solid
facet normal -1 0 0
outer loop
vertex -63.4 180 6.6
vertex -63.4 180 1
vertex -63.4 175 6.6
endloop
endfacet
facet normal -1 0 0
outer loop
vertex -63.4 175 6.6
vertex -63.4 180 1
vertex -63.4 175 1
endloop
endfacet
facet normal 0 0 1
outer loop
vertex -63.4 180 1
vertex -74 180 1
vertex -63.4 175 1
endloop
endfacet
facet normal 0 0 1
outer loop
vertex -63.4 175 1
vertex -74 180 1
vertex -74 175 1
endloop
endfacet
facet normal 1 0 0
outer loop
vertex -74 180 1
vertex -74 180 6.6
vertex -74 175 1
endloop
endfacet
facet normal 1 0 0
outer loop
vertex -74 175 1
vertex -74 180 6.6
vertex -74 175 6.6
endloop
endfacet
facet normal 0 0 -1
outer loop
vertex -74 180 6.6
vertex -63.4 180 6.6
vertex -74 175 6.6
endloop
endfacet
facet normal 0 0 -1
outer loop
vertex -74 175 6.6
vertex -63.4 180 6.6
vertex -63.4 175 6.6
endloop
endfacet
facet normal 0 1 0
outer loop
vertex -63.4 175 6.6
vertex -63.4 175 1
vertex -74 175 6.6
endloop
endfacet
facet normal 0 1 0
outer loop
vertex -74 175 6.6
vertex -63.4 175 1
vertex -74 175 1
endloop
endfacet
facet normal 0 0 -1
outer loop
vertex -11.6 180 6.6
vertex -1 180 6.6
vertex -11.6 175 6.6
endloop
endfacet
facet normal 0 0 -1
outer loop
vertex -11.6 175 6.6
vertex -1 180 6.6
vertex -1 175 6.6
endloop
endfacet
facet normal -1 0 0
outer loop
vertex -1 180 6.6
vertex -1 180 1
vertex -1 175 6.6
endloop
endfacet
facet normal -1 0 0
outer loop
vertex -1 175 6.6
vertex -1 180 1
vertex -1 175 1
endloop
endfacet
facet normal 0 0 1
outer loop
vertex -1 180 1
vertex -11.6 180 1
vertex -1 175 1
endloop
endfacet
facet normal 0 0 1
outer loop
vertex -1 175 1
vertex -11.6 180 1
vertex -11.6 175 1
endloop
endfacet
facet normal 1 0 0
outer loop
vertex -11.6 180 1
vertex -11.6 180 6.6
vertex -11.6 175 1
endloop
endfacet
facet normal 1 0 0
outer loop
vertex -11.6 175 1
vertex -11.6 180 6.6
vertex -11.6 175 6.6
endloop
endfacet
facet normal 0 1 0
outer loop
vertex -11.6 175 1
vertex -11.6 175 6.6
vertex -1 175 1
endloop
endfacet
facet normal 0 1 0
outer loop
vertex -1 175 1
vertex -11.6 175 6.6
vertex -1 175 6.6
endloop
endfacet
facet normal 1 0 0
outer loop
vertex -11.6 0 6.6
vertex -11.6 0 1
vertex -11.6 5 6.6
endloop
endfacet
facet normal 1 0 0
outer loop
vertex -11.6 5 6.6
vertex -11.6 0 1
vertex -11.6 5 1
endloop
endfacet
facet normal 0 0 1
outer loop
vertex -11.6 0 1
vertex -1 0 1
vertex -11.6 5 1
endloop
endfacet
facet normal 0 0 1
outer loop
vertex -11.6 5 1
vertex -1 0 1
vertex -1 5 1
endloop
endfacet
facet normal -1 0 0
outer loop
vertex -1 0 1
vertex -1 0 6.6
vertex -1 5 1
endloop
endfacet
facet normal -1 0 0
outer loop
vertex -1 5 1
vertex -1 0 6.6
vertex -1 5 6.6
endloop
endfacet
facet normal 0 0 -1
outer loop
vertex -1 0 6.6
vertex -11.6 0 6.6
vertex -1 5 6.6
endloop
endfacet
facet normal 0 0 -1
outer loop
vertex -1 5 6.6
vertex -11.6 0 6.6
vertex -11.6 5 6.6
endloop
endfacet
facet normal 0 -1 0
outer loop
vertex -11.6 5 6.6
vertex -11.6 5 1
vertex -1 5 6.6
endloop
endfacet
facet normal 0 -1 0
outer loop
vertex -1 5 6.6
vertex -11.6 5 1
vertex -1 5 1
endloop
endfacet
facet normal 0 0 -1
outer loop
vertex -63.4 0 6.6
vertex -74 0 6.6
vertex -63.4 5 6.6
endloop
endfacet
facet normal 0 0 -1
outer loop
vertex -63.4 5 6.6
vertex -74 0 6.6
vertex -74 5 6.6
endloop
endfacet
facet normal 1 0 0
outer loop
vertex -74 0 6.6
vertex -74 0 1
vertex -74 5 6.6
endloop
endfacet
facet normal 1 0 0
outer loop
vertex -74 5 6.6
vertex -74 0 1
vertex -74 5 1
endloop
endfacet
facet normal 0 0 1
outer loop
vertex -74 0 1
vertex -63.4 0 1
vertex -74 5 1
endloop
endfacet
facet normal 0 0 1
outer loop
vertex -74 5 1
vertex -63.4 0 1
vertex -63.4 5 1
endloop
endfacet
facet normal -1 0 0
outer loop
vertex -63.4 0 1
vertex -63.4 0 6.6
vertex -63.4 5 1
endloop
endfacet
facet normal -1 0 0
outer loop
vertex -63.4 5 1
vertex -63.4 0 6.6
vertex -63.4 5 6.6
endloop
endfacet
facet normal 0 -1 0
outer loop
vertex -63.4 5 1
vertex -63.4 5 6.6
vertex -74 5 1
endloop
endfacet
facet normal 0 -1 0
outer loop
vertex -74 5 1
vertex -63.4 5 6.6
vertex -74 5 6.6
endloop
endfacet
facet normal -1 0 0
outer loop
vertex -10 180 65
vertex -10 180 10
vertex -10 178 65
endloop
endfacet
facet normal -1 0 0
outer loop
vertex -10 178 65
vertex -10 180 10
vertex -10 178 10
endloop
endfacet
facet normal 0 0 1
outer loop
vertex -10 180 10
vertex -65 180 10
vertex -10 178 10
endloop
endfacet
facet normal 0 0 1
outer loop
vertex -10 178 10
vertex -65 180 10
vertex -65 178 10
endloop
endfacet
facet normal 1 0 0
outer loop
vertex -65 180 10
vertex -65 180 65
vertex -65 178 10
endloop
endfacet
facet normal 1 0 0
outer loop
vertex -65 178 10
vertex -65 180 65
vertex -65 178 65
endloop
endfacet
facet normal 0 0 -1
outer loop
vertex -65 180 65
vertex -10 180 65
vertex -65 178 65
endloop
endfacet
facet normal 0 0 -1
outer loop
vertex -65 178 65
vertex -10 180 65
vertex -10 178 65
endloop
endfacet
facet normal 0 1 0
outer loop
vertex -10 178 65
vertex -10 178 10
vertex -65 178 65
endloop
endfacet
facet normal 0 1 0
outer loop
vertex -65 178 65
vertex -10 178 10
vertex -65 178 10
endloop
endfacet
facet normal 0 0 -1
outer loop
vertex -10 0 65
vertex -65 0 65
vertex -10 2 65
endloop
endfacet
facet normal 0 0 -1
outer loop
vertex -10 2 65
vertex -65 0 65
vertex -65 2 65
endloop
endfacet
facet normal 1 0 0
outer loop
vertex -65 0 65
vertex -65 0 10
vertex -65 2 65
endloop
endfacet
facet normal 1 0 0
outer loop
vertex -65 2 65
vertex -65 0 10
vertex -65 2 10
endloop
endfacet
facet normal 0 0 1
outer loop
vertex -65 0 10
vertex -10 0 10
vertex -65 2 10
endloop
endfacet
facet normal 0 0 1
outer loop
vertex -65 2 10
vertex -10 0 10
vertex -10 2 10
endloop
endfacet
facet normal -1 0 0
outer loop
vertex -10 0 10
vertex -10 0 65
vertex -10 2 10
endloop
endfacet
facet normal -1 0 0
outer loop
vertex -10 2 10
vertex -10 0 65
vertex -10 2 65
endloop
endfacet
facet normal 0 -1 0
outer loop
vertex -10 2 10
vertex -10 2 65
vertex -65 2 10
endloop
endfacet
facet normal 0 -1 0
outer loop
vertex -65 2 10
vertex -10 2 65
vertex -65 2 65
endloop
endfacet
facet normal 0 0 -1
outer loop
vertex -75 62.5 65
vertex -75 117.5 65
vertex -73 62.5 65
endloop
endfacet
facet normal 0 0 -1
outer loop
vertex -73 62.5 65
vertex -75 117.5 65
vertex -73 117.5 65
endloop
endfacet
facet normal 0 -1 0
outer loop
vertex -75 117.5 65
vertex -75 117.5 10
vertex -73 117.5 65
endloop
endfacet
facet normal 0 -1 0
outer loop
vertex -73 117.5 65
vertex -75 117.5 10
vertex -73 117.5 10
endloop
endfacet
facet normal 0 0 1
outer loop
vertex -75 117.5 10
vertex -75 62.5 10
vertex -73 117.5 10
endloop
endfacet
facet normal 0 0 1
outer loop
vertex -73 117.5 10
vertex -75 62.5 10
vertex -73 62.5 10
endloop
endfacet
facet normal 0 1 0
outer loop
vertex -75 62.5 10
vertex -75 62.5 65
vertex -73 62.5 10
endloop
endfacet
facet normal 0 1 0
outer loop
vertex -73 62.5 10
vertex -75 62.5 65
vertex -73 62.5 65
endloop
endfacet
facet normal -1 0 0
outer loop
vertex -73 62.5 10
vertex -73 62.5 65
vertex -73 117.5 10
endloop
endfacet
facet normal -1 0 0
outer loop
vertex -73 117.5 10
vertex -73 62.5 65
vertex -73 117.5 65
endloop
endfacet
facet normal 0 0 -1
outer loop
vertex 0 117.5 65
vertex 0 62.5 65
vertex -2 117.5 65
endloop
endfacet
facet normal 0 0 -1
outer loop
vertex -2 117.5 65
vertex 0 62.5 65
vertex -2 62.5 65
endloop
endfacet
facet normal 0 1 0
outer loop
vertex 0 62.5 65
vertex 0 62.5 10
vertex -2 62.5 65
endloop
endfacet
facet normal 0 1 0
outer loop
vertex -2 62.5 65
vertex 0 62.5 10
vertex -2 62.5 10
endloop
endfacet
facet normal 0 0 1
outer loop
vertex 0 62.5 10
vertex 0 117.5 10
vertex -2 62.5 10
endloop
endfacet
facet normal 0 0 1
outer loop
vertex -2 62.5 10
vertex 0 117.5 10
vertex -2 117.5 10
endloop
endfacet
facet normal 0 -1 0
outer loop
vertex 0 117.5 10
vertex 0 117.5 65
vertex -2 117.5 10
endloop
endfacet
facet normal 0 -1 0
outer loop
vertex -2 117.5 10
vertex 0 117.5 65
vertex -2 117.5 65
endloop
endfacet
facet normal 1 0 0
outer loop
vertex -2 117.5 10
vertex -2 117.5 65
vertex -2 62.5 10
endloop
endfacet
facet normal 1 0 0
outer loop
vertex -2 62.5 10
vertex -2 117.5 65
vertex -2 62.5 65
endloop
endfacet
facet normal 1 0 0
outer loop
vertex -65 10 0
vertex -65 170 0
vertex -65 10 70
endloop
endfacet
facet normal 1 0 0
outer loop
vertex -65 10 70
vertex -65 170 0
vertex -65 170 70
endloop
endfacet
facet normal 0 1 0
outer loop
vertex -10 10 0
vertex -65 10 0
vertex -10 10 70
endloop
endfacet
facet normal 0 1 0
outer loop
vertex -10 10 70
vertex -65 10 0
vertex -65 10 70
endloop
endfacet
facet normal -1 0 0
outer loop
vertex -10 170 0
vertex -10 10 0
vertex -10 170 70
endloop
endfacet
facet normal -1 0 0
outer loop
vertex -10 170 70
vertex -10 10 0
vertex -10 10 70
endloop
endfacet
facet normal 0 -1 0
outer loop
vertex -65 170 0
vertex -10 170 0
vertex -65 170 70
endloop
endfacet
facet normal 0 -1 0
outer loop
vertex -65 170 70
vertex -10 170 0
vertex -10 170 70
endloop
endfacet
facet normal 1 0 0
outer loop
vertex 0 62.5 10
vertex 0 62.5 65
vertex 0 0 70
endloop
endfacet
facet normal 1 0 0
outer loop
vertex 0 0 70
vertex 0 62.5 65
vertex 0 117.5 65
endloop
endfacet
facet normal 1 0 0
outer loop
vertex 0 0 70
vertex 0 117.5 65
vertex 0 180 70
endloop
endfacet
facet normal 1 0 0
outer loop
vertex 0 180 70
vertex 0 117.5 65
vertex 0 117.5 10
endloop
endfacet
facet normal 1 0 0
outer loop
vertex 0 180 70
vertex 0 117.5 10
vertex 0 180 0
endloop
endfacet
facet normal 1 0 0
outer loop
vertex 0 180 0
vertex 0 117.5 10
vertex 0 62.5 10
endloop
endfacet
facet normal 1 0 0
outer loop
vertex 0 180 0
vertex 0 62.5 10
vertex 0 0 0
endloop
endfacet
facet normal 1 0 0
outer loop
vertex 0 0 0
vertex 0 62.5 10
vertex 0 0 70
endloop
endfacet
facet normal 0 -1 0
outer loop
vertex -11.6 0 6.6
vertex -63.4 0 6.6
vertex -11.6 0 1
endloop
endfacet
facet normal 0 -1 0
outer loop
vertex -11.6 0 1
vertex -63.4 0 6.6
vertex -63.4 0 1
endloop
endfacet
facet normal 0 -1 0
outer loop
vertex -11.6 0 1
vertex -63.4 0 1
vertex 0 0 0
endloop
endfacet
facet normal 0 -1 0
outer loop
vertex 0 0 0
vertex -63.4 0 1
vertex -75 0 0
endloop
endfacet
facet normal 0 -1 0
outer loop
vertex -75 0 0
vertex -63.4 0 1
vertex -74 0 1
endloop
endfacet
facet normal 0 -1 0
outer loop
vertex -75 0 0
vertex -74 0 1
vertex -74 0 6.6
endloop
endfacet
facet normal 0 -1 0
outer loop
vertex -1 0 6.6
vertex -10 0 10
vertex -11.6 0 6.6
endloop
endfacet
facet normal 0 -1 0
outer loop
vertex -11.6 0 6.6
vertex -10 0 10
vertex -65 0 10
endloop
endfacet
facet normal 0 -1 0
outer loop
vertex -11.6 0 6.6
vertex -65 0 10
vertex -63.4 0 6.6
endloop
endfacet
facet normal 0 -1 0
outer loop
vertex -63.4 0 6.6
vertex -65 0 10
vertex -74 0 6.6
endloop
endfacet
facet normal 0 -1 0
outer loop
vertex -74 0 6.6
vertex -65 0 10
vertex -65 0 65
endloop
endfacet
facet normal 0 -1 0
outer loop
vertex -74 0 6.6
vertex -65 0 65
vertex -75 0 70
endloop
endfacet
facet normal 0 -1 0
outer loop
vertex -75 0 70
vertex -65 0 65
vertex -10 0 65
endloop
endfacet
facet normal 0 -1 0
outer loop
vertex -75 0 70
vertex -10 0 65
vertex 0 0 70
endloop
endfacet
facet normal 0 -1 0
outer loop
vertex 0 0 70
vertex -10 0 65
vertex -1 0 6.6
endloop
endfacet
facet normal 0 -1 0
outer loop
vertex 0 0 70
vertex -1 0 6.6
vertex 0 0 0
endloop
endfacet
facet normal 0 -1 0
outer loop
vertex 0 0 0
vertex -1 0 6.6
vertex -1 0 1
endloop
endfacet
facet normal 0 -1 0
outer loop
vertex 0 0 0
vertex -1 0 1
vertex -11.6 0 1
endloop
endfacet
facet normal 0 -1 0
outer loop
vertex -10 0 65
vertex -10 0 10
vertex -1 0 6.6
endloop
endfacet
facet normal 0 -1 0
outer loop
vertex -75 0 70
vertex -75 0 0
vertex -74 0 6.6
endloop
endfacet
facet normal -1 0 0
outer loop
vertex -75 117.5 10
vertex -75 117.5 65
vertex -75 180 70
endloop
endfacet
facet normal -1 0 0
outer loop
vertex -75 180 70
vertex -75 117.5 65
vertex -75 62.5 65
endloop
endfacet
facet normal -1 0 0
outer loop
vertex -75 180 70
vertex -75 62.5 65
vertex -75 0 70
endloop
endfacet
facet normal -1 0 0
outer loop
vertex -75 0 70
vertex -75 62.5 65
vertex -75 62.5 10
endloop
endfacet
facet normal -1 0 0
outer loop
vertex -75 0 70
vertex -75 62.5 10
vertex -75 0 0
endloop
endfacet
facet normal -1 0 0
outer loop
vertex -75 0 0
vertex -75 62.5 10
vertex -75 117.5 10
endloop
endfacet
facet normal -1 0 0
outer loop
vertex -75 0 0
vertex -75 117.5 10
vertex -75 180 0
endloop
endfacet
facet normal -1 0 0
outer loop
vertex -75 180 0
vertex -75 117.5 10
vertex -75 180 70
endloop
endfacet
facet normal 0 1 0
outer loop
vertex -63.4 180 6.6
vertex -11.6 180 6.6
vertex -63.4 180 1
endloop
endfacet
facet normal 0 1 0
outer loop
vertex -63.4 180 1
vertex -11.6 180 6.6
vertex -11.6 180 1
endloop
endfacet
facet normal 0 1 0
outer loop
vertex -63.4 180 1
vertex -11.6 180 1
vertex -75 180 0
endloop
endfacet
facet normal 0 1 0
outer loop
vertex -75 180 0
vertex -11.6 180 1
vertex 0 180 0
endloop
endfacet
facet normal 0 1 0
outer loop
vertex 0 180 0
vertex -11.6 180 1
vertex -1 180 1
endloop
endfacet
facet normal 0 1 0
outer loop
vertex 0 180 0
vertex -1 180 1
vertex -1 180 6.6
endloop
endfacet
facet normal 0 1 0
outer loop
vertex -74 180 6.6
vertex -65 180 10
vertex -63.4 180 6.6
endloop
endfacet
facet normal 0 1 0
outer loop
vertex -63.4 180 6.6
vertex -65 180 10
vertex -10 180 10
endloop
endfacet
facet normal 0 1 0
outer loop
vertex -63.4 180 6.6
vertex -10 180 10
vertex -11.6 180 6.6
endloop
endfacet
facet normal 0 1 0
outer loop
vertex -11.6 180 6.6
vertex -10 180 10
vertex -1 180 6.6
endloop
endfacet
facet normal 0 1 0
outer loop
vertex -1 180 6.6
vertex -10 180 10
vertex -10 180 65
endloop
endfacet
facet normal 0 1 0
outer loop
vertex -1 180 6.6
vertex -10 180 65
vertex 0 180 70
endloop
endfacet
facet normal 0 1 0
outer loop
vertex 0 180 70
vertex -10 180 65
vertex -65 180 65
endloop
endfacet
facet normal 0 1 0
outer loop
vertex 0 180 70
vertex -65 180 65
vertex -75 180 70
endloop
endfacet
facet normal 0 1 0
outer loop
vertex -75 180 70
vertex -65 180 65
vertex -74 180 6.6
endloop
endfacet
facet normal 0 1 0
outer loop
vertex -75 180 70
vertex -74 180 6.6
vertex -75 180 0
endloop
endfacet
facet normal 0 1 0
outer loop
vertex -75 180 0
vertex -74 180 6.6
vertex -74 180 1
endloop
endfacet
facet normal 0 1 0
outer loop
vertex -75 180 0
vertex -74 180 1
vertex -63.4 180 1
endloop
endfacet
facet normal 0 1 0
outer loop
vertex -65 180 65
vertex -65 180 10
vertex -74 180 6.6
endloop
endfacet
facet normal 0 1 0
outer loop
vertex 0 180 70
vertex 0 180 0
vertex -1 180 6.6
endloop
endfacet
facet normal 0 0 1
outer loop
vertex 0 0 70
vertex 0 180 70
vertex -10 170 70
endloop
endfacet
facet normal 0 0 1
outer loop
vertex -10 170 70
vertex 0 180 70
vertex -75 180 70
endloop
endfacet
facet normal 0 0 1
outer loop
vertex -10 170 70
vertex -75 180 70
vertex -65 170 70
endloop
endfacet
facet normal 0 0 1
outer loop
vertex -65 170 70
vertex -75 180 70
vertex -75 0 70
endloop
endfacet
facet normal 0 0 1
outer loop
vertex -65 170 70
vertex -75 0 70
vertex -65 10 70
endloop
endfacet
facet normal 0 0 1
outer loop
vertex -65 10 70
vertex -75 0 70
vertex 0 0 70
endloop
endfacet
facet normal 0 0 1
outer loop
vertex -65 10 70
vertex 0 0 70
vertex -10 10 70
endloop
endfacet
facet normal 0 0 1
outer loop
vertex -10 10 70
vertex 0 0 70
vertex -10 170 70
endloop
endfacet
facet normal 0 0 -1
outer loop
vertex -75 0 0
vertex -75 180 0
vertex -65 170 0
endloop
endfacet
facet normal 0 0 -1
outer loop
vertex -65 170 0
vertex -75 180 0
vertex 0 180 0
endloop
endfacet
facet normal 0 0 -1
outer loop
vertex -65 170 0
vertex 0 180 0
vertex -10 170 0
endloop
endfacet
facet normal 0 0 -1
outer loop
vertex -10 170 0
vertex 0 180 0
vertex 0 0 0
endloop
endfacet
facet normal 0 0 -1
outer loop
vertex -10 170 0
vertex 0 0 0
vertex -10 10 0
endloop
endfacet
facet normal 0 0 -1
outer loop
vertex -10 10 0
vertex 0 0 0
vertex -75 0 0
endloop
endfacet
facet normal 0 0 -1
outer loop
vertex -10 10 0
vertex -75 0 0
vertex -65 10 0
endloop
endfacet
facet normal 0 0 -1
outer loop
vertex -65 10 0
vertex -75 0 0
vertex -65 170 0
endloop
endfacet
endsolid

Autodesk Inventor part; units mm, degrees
ref_plane "YZ Plane" through (0, 0, 0) normal (1, 0, 0) x (0, 1, 0)
ref_plane "XZ Plane" through (0, 0, 0) normal (0, 1, 0) x (-1, 0, 0)
ref_plane "XY Plane" through (0, 0, 0) normal (0, 0, 1) x (1, 0, 0)
sketch "Sketch1" plane through (0, 0, 0) normal (0, 0, 1) x (1, 0, 0)
  line L0 (0, 0) -> (-75, 0)
  line L1 (-75, 0) -> (-75, 180)
  line L2 (-75, 180) -> (0, 180)
  line L3 (0, 180) -> (0, 0)
  line L4 (-65, 170) -> (-10, 170)
  line L5 (-10, 10) -> (-65, 10)
  line L6 (-65, 10) -> (-65, 85)
  line L7 (-65, 95) -> (-65, 170)
  line L8 (-10, 170) -> (-10, 95)
  line L9 (-10, 85) -> (-10, 10)
  line L10 (-65, 85) -> (-65, 95)
  line L11 (-10, 95) -> (-10, 85)
  point P0 (-65, 90)
  point P1 (-10, 90)
  dimension "d35" = 75
  dimension "d36" = 180
  dimension "d37" = 55
  dimension "d38" = 160
extrude "Extrusion7" add sketch "Sketch1" along normal blind 70
sketch "Sketch6" plane through (0, 0, 0) normal (1, 0, 0) x (0, 0, -1)
  line L0 (-10, 62.5) -> (-65, 62.5)
  line L1 (-65, 62.5) -> (-65, 117.5)
  line L2 (-65, 117.5) -> (-10, 117.5)
  line L3 (-10, 117.5) -> (-10, 62.5)
  dimension "d67" = 55
  dimension "d68" = 55
extrude "Extrusion10" cut sketch "Sketch6" against normal blind 2
sketch "Sketch7" plane through (-75, 0, 0) normal (-1, 0, 0) x (0, 0, 1)
  line L0 (10, 62.5) -> (65, 62.5) projected
  line L1 (10, 62.5) -> (65, 62.5)
  line L2 (65, 62.5) -> (65, 117.5)
  line L3 (65, 117.5) -> (10, 117.5)
  line L4 (10, 117.5) -> (10, 62.5)
  point P0 (0, 0)
  dimension "d71" = 55
  dimension "d72" = 55
extrude "Extrusion11" cut sketch "Sketch7" against normal blind 2
sketch "Sketch8" plane through (-75, 0, 0) normal (0, -1, 0) x (1, 0, 0)
  line L0 (10, 10) -> (65, 10)
  line L1 (65, 10) -> (65, 65)
  line L2 (65, 65) -> (10, 65)
  line L3 (10, 65) -> (10, 10)
  point P0 (75, 0)
  dimension "d75" = 55
  dimension "d76" = 55
extrude "Extrusion12" cut sketch "Sketch8" against normal blind 2
sketch "Sketch9" plane through (-75, 180, 0) normal (0, 1, 0) x (1, 0, 0)
  line L0 (10, -10) -> (65, -10)
  line L1 (65, -10) -> (65, -65)
  line L2 (65, -65) -> (10, -65)
  line L3 (10, -65) -> (10, -10)
  point P0 (75, 0)
  dimension "d79" = 55
  dimension "d80" = 55
extrude "Extrusion13" cut sketch "Sketch9" against normal blind 2
sketch "Sketch10" plane through (-75, 0, 0) normal (0, -1, 0) x (1, 0, 0)
  line L0 (74, 1) -> (63.4, 1)
  line L1 (63.4, 1) -> (63.4, 6.6)
  line L2 (63.4, 6.6) -> (74, 6.6)
  line L3 (74, 6.6) -> (74, 1)
  line L4 (1, 1) -> (11.6, 1)
  line L5 (11.6, 1) -> (11.6, 6.6)
  line L6 (11.6, 6.6) -> (1, 6.6)
  line L7 (1, 6.6) -> (1, 1)
  point P0 (75, 0)
  dimension "d83" = 10.6
  dimension "d84" = 5.6
  dimension "d85" = 10.6
  dimension "d86" = 5.6
extrude "Extrusion14" cut sketch "Sketch10" against normal blind 5
sketch "Sketch11" plane through (-75, 180, 0) normal (0, 1, 0) x (1, 0, 0)
  line L0 (1, -1) -> (11.6, -1)
  line L1 (11.6, -1) -> (11.6, -6.6)
  line L2 (11.6, -6.6) -> (1, -6.6)
  line L3 (1, -6.6) -> (1, -1)
  line L4 (74, -1) -> (63.4, -1)
  line L5 (63.4, -1) -> (63.4, -6.6)
  line L6 (63.4, -6.6) -> (74, -6.6)
  line L7 (74, -6.6) -> (74, -1)
  point P0 (75, 0)
  dimension "d89" = 10.6
  dimension "d90" = 5.6
  dimension "d91" = 10.6
  dimension "d92" = 5.6
extrude "Extrusion15" cut sketch "Sketch11" against normal blind 5
properties part number "Shoulder_Cube_TestFit_V1"
